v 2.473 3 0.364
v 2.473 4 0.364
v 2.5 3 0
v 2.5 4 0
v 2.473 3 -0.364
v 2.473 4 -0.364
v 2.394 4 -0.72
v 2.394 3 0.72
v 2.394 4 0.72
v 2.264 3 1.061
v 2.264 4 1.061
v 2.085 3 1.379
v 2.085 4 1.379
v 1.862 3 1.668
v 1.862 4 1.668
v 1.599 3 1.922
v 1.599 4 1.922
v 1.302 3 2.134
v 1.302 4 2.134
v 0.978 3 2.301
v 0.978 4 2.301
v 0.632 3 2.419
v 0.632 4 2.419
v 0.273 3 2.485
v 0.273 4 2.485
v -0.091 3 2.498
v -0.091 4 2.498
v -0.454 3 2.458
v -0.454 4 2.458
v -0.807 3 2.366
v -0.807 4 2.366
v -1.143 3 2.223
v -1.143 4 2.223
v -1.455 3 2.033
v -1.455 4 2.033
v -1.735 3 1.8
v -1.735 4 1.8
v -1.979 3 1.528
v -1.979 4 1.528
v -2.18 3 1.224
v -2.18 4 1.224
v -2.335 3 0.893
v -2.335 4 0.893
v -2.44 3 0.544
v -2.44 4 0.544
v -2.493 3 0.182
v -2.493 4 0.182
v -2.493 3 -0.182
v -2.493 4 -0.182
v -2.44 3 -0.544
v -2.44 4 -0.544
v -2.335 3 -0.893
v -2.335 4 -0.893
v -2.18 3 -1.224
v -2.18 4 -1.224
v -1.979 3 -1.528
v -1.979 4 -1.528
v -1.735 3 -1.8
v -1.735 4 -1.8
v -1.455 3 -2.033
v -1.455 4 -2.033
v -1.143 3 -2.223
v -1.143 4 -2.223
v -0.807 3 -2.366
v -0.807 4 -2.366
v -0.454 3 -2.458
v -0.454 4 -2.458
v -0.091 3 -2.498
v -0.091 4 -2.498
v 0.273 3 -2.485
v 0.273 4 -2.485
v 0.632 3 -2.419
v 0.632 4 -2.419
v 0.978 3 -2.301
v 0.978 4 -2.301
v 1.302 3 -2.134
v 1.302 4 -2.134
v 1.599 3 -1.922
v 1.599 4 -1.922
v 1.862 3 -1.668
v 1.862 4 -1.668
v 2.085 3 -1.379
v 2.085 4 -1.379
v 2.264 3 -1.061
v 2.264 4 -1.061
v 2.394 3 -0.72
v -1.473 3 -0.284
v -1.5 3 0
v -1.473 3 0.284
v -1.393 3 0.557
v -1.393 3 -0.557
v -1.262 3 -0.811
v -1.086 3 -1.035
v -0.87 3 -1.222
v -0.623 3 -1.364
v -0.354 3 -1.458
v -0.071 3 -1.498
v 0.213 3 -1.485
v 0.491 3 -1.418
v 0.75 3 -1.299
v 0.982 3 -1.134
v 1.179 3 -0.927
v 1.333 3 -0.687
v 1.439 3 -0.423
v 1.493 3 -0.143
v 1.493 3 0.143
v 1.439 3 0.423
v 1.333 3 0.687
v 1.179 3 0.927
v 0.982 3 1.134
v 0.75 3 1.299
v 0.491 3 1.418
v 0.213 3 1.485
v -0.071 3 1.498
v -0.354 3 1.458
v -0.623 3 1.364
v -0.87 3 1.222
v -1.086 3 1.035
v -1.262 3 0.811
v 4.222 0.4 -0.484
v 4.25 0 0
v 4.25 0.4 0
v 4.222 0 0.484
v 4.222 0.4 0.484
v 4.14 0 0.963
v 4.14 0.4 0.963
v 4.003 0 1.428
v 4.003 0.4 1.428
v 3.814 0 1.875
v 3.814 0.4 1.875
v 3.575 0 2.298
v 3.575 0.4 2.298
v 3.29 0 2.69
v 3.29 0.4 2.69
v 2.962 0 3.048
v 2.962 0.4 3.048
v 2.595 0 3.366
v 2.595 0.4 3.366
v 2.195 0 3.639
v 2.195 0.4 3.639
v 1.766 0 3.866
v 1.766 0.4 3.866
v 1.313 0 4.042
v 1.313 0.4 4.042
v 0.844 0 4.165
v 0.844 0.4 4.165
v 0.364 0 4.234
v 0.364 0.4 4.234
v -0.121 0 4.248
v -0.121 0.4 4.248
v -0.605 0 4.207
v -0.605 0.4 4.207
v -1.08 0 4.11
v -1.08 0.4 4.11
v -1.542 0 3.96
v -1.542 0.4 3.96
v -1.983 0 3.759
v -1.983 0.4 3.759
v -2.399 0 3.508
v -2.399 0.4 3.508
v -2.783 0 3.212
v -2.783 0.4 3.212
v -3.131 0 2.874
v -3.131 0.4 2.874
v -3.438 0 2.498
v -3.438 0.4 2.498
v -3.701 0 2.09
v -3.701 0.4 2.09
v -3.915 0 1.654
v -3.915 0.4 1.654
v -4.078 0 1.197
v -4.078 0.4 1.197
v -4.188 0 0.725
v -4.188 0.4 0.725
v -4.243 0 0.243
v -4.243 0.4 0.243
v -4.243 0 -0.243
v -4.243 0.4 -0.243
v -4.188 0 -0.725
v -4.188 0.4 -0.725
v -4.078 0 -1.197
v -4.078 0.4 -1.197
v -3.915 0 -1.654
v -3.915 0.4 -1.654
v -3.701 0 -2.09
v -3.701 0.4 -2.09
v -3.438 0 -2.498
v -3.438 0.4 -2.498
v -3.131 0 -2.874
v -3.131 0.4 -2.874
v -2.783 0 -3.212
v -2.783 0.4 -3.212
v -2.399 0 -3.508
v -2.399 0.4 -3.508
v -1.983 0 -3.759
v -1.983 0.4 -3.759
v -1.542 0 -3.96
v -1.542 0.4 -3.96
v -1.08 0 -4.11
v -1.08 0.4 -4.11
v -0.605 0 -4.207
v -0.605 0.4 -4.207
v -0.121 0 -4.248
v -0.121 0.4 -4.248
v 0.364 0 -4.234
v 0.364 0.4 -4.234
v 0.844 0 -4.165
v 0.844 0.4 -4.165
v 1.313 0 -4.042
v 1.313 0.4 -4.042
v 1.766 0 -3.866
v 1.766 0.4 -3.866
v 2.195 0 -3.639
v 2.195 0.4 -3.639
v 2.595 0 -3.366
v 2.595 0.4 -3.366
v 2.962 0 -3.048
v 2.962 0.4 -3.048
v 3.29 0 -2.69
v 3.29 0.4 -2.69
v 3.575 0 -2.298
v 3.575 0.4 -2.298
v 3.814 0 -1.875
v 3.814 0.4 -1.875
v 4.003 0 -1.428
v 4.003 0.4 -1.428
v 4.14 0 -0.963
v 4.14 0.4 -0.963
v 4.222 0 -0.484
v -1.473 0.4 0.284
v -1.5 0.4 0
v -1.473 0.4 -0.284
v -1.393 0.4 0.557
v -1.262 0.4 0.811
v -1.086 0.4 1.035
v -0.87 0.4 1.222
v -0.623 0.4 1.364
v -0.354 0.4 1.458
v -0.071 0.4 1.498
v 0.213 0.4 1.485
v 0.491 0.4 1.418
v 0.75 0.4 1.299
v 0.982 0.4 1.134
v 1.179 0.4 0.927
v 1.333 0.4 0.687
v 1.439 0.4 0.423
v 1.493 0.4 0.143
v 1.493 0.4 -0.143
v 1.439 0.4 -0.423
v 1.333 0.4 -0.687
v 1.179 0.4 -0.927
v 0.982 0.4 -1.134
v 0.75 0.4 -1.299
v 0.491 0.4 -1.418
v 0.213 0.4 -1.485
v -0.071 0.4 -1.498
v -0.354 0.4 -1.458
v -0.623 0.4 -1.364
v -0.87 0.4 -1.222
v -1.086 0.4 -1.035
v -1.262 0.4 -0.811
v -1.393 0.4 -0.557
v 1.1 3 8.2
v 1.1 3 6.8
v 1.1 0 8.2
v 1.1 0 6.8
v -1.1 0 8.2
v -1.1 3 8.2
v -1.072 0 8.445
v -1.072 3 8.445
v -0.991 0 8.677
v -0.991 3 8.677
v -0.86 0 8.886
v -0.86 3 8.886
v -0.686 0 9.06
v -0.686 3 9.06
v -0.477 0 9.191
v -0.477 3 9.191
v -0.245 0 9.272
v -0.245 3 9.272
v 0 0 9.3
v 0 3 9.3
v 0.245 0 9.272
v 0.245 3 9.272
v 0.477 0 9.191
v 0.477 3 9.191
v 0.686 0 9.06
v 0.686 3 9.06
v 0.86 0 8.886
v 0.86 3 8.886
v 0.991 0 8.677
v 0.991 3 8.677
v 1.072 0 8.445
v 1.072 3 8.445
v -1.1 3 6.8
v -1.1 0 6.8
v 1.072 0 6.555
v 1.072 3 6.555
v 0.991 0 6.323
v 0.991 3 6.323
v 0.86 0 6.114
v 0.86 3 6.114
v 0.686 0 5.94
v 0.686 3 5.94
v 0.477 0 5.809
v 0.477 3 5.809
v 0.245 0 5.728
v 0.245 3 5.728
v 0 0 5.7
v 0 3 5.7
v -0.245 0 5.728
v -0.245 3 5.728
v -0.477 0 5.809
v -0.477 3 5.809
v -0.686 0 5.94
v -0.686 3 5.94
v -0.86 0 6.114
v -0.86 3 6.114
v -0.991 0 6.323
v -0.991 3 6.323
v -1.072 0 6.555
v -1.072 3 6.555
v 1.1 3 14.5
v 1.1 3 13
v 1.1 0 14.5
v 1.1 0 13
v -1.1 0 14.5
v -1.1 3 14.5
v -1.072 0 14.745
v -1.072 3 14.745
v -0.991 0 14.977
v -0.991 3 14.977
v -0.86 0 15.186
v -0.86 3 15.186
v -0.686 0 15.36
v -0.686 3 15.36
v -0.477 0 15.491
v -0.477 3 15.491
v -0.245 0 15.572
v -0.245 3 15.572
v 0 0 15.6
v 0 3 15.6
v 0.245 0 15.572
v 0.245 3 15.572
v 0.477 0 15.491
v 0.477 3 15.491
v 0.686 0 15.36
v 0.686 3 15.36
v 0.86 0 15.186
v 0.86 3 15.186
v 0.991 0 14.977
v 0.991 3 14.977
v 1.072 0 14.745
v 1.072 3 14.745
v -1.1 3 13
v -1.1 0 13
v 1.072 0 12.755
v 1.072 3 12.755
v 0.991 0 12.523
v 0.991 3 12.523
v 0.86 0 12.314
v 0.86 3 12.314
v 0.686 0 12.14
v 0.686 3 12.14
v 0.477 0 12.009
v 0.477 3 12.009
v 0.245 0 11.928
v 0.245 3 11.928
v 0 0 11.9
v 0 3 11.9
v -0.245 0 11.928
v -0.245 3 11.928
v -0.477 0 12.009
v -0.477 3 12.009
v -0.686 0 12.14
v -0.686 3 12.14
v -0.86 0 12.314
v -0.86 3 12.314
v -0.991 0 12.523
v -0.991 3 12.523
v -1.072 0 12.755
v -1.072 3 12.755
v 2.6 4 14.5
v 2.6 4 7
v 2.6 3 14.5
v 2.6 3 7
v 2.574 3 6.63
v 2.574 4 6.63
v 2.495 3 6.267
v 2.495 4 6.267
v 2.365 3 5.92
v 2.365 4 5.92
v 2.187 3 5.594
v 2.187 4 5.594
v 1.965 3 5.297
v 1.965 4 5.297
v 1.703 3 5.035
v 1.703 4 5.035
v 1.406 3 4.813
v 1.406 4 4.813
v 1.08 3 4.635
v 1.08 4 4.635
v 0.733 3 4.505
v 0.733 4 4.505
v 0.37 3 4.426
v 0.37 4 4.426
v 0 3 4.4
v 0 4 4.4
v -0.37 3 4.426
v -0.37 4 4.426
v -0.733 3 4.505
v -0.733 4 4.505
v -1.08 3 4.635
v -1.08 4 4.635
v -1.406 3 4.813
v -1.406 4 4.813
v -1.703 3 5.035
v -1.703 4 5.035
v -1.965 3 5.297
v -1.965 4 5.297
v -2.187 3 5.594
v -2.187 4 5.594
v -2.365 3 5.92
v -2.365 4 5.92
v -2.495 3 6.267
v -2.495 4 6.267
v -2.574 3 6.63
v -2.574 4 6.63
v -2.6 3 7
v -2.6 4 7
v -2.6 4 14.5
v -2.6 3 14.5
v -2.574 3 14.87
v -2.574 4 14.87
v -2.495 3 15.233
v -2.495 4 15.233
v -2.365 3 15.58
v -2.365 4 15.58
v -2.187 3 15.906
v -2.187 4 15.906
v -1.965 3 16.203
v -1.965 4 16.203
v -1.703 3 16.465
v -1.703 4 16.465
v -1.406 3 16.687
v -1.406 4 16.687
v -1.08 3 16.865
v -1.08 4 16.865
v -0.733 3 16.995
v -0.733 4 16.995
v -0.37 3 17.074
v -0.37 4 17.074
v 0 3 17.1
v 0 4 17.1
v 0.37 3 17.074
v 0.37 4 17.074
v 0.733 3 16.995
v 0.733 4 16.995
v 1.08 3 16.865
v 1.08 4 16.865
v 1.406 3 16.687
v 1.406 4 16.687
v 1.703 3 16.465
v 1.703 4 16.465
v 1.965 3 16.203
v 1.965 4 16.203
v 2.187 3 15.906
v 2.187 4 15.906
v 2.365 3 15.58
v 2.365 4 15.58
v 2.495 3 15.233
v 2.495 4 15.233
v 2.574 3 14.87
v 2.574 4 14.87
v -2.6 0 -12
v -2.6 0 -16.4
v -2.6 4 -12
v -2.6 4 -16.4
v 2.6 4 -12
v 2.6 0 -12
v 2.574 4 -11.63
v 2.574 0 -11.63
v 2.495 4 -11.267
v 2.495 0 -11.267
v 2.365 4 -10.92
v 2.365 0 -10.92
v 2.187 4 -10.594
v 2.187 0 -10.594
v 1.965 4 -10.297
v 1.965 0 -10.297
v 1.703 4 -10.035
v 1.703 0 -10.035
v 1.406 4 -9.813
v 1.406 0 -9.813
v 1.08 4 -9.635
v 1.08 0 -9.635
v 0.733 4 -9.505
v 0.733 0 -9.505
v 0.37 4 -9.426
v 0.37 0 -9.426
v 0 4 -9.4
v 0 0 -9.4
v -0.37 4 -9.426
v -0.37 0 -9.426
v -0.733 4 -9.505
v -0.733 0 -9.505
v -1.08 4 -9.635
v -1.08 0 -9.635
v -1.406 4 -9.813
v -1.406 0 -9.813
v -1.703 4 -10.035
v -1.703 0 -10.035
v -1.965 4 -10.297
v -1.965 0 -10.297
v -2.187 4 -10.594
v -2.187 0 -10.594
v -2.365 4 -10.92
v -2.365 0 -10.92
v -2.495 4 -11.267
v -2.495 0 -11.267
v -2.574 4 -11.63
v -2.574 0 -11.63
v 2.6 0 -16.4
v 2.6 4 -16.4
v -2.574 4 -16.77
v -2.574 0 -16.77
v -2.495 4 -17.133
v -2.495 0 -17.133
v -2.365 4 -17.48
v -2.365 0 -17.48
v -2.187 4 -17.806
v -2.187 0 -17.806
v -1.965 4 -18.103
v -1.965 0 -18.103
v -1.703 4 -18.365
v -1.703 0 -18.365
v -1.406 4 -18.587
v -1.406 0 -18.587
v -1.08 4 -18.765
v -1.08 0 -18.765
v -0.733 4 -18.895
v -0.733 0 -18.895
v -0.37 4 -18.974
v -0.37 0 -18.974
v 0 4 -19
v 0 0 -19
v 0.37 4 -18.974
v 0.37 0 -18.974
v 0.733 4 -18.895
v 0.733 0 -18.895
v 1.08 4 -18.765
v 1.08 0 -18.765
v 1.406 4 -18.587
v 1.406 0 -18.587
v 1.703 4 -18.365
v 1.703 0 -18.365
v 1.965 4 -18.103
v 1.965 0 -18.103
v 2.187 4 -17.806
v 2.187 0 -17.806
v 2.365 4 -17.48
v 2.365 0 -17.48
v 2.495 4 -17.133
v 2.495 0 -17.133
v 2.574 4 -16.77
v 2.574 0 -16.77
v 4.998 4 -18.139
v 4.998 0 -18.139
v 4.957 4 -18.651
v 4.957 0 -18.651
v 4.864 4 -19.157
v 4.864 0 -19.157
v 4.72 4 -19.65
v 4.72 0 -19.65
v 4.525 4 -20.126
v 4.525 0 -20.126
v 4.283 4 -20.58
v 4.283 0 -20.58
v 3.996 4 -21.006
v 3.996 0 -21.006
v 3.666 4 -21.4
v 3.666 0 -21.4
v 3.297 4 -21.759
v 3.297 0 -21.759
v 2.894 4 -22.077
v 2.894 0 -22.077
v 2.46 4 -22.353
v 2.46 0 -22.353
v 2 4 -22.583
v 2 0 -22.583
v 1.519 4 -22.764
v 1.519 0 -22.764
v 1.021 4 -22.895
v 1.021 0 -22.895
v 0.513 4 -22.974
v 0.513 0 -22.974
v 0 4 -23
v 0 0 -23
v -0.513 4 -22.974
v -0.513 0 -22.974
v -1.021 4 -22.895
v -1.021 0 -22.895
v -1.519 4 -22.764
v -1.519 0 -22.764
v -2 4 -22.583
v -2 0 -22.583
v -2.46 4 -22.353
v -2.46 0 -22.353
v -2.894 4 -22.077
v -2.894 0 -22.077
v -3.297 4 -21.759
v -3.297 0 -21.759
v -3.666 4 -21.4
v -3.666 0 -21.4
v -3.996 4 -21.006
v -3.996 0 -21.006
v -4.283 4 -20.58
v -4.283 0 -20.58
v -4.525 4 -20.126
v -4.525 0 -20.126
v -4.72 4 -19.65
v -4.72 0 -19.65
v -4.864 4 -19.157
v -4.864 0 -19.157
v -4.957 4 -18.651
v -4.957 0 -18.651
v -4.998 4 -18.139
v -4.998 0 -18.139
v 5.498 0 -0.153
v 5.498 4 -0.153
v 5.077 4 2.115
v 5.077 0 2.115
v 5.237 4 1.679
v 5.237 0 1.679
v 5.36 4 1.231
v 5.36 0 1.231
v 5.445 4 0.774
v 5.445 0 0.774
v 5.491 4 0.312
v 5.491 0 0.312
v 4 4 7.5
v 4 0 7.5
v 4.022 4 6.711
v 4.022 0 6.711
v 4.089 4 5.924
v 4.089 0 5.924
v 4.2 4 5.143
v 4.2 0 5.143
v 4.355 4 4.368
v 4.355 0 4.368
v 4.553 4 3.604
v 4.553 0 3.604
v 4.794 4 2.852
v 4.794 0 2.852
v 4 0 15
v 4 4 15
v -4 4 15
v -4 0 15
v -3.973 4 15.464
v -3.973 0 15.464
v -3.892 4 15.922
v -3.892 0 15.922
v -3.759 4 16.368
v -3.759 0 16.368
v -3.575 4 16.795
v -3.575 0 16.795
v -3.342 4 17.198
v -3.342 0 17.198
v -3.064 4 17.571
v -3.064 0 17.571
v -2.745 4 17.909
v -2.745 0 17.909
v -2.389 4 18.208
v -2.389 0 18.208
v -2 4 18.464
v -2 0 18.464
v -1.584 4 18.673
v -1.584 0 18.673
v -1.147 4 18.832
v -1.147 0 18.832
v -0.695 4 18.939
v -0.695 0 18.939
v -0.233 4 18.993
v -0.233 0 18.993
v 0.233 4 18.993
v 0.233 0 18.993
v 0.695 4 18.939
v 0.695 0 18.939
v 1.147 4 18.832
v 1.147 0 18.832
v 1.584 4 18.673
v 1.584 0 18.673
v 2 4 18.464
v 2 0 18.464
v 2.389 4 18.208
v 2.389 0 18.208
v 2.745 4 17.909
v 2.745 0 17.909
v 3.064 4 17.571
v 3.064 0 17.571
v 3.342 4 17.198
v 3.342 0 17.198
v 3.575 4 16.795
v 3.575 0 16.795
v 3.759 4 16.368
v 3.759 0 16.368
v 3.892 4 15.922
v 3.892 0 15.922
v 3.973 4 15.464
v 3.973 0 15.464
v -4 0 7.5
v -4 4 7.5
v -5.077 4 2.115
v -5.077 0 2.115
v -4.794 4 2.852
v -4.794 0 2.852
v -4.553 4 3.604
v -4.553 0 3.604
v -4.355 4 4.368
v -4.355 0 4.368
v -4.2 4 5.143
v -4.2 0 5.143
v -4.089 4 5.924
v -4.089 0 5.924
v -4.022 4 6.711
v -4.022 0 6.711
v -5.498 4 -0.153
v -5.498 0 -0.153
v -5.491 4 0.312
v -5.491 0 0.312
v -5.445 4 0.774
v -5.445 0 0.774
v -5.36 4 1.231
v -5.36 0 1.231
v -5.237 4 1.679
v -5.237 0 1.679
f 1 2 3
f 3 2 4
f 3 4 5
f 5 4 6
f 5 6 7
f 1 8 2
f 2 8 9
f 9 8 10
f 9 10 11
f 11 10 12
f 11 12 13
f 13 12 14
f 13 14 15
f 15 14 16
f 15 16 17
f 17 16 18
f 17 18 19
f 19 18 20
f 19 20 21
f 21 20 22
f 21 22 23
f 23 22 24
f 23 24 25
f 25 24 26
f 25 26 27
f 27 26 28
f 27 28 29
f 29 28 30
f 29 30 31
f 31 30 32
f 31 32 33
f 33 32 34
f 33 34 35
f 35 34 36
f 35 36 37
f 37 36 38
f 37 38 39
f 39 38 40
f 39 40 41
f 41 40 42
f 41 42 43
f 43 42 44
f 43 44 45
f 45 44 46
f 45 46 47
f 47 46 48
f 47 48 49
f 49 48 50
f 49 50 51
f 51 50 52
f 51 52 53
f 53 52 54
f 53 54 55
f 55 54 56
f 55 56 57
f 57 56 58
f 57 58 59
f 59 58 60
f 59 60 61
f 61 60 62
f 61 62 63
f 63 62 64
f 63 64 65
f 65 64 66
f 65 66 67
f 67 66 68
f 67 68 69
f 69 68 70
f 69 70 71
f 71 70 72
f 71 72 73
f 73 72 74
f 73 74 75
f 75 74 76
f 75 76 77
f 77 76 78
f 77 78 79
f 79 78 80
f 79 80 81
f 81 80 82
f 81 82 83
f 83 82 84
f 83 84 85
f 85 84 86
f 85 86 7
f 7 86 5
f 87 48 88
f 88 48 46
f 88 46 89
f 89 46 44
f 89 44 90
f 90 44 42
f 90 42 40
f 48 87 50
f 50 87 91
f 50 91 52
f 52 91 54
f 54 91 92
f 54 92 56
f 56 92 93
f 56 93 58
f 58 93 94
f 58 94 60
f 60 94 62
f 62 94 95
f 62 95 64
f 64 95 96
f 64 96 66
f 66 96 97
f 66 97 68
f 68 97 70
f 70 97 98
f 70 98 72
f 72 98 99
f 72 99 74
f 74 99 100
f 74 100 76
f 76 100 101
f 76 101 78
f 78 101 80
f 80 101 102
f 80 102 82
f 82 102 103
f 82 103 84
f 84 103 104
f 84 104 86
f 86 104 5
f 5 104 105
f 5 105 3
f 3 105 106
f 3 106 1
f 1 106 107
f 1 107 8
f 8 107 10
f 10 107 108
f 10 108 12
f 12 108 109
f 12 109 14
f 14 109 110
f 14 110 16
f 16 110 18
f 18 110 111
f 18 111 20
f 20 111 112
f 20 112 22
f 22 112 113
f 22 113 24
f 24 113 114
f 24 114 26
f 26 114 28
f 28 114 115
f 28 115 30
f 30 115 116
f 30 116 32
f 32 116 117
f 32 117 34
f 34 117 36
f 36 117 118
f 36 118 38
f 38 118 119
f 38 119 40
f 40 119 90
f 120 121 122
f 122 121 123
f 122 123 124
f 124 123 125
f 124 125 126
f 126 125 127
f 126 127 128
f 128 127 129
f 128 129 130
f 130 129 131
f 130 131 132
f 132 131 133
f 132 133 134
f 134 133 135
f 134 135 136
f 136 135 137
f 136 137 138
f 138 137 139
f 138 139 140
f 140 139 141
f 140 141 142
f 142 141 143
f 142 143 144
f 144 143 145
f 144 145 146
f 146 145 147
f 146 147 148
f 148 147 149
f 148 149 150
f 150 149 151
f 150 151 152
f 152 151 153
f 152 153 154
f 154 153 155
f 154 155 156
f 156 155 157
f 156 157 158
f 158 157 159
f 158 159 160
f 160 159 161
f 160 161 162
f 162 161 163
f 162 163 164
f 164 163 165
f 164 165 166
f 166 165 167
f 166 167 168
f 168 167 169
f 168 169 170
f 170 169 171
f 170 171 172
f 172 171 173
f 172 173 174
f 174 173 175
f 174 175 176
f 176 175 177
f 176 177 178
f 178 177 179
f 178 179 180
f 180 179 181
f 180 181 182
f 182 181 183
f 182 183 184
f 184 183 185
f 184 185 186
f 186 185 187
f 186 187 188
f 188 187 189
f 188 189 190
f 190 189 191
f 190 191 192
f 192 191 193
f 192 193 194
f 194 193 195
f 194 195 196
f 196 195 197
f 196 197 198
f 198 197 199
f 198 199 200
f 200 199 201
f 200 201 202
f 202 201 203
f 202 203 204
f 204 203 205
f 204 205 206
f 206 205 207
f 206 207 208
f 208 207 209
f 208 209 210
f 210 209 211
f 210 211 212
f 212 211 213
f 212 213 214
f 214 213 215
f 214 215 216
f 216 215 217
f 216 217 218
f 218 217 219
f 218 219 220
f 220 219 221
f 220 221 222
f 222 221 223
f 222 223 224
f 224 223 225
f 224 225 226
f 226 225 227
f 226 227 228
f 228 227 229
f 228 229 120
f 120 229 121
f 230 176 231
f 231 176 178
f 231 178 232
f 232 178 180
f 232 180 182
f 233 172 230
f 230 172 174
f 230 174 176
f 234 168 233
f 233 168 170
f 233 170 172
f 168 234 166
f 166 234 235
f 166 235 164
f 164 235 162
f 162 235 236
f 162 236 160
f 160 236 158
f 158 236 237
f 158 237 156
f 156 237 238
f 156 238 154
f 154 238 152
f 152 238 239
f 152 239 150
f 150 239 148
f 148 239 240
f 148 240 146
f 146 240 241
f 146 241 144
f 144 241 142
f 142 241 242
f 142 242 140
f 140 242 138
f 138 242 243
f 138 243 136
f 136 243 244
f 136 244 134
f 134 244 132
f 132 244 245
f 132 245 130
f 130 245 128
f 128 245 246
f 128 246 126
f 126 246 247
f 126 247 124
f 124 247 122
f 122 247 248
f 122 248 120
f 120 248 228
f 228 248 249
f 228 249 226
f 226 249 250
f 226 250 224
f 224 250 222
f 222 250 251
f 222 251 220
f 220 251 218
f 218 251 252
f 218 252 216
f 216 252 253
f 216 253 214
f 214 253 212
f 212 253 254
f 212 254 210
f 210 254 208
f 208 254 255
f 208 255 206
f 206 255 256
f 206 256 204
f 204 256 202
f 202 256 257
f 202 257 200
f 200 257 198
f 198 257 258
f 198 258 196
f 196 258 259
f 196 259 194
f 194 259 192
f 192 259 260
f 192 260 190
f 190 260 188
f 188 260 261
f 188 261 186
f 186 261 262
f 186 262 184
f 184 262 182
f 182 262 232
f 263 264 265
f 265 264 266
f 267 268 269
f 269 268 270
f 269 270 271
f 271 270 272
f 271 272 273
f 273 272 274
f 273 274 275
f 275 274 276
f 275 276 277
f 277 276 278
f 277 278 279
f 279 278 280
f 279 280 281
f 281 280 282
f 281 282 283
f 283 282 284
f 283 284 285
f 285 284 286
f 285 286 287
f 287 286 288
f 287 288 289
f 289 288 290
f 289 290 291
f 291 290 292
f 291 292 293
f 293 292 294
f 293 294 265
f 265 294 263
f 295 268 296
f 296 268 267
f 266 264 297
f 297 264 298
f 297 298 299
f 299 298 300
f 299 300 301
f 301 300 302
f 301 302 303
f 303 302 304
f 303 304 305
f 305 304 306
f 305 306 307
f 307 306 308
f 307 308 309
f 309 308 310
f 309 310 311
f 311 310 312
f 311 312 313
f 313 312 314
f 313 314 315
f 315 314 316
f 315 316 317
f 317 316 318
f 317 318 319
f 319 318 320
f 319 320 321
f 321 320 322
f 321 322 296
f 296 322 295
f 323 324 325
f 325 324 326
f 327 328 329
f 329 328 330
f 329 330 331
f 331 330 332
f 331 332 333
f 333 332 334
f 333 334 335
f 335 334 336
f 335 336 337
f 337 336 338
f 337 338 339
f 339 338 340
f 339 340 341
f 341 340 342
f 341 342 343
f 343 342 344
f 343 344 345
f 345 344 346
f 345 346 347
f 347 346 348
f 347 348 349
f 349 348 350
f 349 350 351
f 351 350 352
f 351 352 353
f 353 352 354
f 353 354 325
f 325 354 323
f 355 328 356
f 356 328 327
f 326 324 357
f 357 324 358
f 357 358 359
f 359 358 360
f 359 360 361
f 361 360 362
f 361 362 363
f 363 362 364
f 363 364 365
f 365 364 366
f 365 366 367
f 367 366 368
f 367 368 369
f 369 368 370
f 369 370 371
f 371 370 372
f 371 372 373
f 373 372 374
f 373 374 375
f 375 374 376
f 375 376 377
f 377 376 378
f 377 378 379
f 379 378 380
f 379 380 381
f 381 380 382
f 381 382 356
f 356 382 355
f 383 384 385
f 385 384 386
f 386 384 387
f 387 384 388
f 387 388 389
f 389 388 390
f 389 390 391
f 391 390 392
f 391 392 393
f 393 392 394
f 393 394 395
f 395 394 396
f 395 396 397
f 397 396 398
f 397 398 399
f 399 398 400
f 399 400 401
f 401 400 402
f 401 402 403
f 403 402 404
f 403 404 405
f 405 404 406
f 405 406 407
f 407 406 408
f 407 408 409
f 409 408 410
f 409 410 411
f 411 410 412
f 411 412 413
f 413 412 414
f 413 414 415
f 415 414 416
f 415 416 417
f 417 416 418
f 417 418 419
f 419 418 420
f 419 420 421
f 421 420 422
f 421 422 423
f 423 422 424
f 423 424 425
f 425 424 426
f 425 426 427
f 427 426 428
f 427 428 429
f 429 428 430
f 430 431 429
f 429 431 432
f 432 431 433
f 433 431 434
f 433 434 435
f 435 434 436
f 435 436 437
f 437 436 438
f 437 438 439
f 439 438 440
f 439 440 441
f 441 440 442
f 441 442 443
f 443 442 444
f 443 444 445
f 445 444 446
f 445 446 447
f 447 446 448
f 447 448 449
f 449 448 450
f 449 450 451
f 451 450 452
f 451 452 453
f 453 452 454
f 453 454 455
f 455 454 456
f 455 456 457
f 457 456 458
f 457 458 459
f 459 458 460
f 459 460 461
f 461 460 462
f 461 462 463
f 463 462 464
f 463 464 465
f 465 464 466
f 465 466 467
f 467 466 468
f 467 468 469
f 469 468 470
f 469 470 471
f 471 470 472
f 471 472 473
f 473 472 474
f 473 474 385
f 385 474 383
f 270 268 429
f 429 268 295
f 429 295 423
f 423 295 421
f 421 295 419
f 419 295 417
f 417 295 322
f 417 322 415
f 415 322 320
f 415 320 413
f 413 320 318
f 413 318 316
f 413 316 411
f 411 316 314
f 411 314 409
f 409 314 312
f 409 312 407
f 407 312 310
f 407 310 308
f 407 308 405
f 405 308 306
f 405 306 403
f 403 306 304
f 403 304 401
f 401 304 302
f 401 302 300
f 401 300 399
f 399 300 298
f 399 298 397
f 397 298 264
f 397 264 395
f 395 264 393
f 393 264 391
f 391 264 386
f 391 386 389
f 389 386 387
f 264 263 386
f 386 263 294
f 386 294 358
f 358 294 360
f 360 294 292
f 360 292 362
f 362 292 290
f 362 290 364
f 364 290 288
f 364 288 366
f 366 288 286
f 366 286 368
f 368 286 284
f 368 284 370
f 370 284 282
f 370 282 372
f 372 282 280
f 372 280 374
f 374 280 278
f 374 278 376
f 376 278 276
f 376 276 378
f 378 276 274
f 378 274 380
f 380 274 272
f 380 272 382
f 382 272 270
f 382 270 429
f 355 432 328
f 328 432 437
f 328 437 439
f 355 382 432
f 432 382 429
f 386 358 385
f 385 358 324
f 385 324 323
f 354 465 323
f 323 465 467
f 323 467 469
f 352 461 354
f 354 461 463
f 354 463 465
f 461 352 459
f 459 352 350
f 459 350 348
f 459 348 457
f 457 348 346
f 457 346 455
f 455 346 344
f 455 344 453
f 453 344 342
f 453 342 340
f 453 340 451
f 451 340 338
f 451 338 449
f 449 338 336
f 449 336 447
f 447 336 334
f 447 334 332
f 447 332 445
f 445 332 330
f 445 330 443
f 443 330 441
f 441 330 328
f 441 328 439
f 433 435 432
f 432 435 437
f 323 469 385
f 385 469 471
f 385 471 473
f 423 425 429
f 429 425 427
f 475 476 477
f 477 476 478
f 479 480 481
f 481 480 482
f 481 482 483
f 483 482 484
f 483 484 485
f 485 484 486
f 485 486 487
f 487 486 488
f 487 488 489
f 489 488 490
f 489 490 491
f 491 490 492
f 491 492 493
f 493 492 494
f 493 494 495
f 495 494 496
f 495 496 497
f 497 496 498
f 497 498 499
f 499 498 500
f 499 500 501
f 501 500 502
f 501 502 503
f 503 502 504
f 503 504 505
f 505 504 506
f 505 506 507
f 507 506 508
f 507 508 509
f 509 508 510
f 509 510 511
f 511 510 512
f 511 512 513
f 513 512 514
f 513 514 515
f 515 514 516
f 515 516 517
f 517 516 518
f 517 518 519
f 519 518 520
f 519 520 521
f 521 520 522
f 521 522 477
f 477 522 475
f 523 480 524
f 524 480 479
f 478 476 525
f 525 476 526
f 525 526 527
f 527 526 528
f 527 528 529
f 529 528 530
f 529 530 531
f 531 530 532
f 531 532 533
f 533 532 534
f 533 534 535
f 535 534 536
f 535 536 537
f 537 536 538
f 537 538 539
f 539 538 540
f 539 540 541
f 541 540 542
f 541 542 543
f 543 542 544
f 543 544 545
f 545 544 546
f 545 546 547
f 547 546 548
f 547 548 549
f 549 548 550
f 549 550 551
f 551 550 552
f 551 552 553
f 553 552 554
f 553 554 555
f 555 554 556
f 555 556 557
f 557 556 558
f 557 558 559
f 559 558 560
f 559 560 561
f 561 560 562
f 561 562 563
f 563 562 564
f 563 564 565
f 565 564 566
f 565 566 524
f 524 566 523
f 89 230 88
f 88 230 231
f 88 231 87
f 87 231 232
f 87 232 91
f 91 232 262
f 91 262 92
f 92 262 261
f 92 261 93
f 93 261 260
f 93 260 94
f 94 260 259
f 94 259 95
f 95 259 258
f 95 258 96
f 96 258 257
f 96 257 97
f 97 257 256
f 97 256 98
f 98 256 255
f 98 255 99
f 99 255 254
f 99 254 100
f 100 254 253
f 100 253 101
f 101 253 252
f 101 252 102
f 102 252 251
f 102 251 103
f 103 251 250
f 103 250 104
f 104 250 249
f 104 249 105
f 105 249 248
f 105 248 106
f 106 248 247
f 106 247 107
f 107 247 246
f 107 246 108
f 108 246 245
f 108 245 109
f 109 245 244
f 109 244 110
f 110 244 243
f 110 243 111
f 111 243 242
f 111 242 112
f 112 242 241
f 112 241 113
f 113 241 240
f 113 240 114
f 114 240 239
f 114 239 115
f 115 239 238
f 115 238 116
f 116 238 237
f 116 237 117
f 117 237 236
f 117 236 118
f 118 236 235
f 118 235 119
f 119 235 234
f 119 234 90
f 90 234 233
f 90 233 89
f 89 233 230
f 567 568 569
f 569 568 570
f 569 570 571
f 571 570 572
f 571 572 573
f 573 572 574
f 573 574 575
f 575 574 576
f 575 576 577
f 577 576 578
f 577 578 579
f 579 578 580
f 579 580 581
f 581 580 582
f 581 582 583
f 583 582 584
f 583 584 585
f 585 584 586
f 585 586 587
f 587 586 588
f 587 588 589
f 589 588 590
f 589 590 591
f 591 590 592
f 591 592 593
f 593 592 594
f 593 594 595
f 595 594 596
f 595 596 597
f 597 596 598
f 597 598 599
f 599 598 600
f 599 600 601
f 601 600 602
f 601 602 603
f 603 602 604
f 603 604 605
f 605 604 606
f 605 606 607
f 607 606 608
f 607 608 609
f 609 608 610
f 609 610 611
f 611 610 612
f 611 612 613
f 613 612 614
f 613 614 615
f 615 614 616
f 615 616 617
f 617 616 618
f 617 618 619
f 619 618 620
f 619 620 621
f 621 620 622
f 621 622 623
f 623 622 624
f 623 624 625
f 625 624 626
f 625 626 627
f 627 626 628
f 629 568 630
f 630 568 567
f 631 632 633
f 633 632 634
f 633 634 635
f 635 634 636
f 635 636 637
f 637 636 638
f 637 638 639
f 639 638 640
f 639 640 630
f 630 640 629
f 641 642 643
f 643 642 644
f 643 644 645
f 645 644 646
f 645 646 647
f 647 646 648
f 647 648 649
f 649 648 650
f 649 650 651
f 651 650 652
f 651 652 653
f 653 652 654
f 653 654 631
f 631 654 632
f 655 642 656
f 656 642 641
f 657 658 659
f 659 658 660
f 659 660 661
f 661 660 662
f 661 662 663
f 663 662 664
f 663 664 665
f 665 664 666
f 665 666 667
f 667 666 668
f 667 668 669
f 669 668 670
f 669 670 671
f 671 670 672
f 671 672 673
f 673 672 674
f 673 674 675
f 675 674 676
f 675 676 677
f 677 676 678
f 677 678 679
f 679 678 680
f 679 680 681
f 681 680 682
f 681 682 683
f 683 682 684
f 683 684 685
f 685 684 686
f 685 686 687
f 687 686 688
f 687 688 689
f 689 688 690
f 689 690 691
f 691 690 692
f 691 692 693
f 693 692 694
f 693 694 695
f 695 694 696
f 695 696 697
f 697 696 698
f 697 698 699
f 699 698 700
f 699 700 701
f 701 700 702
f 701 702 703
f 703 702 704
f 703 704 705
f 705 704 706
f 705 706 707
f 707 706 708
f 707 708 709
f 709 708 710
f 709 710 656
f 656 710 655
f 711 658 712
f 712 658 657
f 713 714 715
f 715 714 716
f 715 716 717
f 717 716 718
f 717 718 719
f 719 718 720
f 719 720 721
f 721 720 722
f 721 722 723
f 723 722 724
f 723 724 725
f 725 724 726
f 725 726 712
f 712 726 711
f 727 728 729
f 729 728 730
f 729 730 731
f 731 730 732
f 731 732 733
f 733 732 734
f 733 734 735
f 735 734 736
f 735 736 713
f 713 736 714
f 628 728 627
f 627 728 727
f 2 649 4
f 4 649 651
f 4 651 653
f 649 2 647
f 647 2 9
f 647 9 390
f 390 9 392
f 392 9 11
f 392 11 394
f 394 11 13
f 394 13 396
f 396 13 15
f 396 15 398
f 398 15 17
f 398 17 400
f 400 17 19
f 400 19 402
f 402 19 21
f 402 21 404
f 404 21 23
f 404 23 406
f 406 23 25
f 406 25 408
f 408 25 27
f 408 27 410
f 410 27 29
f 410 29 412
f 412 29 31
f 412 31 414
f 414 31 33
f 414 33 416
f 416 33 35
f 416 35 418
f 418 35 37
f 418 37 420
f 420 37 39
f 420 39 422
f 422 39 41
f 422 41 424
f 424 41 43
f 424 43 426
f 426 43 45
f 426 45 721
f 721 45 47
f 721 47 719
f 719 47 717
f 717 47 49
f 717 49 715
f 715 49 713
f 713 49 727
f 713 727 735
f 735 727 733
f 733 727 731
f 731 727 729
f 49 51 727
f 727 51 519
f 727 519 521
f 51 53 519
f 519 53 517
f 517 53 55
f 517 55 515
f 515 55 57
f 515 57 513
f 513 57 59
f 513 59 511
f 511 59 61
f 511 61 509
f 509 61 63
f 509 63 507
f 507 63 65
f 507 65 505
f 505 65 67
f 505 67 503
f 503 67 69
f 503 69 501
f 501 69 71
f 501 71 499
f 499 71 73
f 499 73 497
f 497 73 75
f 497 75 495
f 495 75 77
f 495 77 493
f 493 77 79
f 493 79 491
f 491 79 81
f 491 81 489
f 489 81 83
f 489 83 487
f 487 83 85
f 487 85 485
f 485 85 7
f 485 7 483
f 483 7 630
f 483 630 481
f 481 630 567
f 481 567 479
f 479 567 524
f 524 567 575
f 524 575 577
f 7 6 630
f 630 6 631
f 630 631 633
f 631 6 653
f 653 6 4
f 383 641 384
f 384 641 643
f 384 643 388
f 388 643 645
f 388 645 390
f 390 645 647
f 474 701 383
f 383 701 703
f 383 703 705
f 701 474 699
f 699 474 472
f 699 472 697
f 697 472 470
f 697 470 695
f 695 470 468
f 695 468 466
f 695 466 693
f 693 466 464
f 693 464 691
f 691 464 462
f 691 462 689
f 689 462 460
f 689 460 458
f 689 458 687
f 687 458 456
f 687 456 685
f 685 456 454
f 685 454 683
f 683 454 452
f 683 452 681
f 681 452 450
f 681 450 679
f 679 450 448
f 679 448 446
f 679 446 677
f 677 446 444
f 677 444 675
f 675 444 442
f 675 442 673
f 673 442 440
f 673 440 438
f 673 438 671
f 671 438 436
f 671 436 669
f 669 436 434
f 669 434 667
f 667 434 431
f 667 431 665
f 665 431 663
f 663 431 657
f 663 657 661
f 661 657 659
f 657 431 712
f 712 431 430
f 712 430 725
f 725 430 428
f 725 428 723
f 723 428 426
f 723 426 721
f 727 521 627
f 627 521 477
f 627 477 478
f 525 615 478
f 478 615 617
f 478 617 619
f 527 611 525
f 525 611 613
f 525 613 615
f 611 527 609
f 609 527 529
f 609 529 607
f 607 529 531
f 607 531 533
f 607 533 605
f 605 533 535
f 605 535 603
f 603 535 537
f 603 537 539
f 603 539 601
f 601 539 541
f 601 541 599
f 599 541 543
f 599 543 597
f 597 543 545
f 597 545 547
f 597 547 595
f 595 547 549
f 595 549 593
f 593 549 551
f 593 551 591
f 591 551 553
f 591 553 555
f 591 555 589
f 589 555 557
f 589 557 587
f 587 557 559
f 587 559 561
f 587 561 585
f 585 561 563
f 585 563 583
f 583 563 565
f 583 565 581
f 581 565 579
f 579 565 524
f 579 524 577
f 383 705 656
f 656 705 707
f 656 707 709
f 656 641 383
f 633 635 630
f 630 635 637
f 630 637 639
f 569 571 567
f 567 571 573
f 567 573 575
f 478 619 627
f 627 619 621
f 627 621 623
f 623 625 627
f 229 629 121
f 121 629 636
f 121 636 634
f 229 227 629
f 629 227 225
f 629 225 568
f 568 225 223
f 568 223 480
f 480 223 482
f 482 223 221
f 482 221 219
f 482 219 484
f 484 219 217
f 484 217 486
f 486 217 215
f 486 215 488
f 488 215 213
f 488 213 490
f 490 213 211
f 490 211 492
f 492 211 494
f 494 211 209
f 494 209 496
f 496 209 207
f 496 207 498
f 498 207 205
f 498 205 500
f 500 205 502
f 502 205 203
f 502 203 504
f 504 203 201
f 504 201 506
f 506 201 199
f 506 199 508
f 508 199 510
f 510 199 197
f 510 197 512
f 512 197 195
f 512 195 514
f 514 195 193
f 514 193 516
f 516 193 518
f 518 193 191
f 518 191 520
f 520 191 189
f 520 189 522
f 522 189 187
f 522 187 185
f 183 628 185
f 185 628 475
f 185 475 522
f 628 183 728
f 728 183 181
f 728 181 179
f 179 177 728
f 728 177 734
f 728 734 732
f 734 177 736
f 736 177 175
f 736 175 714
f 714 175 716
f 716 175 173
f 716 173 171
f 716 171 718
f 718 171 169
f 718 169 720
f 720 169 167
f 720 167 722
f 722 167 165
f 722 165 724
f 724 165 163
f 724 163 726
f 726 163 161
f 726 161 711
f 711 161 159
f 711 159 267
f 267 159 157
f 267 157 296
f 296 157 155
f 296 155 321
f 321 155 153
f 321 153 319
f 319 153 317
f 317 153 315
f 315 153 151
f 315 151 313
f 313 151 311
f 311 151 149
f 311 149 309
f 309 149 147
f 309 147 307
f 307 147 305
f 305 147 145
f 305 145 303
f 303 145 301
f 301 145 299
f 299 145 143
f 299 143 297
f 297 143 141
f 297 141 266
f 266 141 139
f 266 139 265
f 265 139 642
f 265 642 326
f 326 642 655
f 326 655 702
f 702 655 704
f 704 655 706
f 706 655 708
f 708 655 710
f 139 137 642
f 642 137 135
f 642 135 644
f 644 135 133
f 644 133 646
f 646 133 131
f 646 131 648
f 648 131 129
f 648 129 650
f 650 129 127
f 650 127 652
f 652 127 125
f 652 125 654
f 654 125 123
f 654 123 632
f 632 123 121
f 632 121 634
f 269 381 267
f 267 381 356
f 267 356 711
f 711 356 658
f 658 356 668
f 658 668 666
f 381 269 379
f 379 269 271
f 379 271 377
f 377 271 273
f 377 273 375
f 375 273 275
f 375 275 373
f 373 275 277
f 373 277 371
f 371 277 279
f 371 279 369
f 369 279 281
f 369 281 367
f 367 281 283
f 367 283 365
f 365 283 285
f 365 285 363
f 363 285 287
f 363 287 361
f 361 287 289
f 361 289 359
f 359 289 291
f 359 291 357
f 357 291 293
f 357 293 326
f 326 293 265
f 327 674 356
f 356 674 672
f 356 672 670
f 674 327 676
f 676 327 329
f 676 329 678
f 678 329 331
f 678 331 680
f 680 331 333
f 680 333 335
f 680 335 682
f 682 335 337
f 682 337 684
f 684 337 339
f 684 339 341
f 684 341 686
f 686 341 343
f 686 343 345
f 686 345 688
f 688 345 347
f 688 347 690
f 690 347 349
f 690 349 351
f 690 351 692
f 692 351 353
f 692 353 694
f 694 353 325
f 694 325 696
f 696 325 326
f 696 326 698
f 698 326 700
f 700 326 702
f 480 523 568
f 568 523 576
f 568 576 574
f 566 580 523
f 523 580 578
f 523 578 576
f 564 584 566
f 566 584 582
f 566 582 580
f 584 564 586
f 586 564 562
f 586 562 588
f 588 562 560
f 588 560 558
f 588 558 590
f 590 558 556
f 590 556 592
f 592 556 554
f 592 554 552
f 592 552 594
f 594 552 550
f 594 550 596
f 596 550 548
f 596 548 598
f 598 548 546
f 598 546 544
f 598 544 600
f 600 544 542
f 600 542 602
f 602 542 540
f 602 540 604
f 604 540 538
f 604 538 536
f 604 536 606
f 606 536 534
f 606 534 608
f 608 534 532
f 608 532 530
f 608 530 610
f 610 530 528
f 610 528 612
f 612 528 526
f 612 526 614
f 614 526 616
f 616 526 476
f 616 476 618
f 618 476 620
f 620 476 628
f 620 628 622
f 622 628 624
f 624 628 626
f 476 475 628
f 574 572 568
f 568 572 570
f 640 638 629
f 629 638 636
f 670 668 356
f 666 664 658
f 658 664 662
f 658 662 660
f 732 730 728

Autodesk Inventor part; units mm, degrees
ref_plane "YZ Plane" through (0, 0, 0) normal (1, 0, 0) x (0, 1, 0)
ref_plane "XZ Plane" through (0, 0, 0) normal (0, 1, 0) x (-1, 0, 0)
ref_plane "XY Plane" through (0, 0, 0) normal (0, 0, 1) x (1, 0, 0)
sketch "Sketch1" plane through (0, 0, 0) normal (0, 1, 0) x (-1, 0, 0)
  circle A0 centre (0, 0) radius 1.5
  circle A1 centre (0, 0) radius 5.5
  circle A2 centre (0, -18) radius 5
  line L0 (5.4979, -0.1528) -> (4.9981, -18.1389)
  line L1 (-4.9981, -18.1389) -> (-5.4979, -0.1528)
  line L2 (0, 0) -> (0, 15) construction
  line L3 (-4, 0) -> (-4, 15)
  line L4 (4, 15) -> (4, 0)
  arc A3 (-4, 0) -> (4, 0) centre (0, 0) ccw
  arc A4 (4, 15) -> (-4, 15) centre (0, 15) ccw
  arc A5 (4, 7.5) -> (5.0769, 2.1154) centre (18, 7.5) ccw
  arc A6 (-5.0769, 2.1154) -> (-4, 7.5) centre (-18, 7.5) ccw
  point P0 (0, 7.5)
  point P1 (-4, 3.7749)
  point P2 (4, 3.7749)
  point P3 (-4, 7.5)
  dimension "d0" = 3
  dimension "d1" = 11
  dimension "d3" = 18
  dimension "d43" = 15
  dimension "d44" = 4
  dimension "d74" = 10
extrude "Extrusion1" add sketch "Sketch1" along normal blind 4
sketch "Sketch2" plane through (0, 4, 0) normal (0, 1, 0) x (1, 0, 0)
  arc A0 (4.9981, 18.1389) -> (-4.9981, 18.1389) centre (0, 18) ccw projected
  circle A1 centre (0, 0) radius 1.5 projected
  line L0 (0, 16.4) -> (0, 12) construction
  line L1 (-2.6, 16.4) -> (-2.6, 12)
  line L2 (2.6, 12) -> (2.6, 16.4)
  arc A2 (2.6, 16.4) -> (-2.6, 16.4) centre (0, 16.4) ccw
  arc A3 (-2.6, 12) -> (2.6, 12) centre (0, 12) ccw
  line L3 (-4, -7.5) -> (-4, -15) projected
  arc A4 (-4, -15) -> (4, -15) centre (0, -15) ccw projected
  line L4 (4, -15) -> (4, -7.5) projected
  line L5 (-4.9981, 18.1389) -> (-5.4979, 0.1528) projected
  arc A5 (-5.4979, 0.1528) -> (-5.0769, -2.1154) centre (0, 0) ccw projected
  arc A6 (5.0769, -2.1154) -> (5.4979, 0.1528) centre (0, 0) ccw projected
  line L6 (5.4979, 0.1528) -> (4.9981, 18.1389) projected
  arc A7 (-4, -7.5) -> (-5.0769, -2.1154) centre (-18, -7.5) ccw projected
  arc A8 (5.0769, -2.1154) -> (4, -7.5) centre (18, -7.5) ccw projected
  point P0 (0, 14.2)
  dimension "d6" = 4.4
  dimension "d7" = 5.2
  dimension "d9" = 12
extrude "Extrusion2" cut sketch "Sketch2" against normal through all contours A2 L2 A3 L1
sketch "Sketch8" plane through (0, 4, 0) normal (0, 1, 0) x (1, 0, 0)
  line L0 (0, 31.4) -> (0, -27.4) projected
  line L1 (0, -14.5) -> (0, -7) construction
  line L2 (2.6, -14.5) -> (2.6, -7)
  line L3 (-2.6, -7) -> (-2.6, -14.5)
  arc A0 (-2.6, -14.5) -> (2.6, -14.5) centre (0, -14.5) ccw
  arc A1 (2.6, -7) -> (-2.6, -7) centre (0, -7) ccw
  point P0 (0, 0)
  point P1 (0, -10.75)
  dimension "d45" = 5.2
  dimension "d47" = 7
  dimension "d48" = 14.5
extrude "Extrusion8" cut sketch "Sketch8" against normal blind 1
sketch "Sketch10" plane through (0, 0, 0) normal (0, -1, 0) x (1, 0, 0)
  line L0 (0, 6.8) -> (0, 8.2) construction
  line L1 (1.1, 6.8) -> (1.1, 8.2)
  line L2 (-1.1, 8.2) -> (-1.1, 6.8)
  arc A0 (-1.1, 6.8) -> (1.1, 6.8) centre (0, 6.8) ccw
  arc A1 (1.1, 8.2) -> (-1.1, 8.2) centre (0, 8.2) ccw
  line L3 (0, 13) -> (0, 14.5) construction
  line L4 (1.1, 13) -> (1.1, 14.5)
  line L5 (-1.1, 14.5) -> (-1.1, 13)
  arc A2 (-1.1, 13) -> (1.1, 13) centre (0, 13) ccw
  arc A3 (1.1, 14.5) -> (-1.1, 14.5) centre (0, 14.5) ccw
  line L6 (0, -7.3) -> (0, -7.7) construction
  line L7 (1.1, -7.3) -> (1.1, -7.7)
  line L8 (-1.1, -7.7) -> (-1.1, -7.3)
  arc A4 (1.1, -7.3) -> (-1.1, -7.3) centre (0, -7.3) ccw
  arc A5 (-1.1, -7.7) -> (1.1, -7.7) centre (0, -7.7) ccw
  point P0 (0, 0)
  point P1 (0, 7.5)
  point P2 (0, 13.75)
  point P3 (0, -7.5)
  dimension "d60" = 2.2
  dimension "d61" = 6.8
  dimension "d62" = 1.4
  dimension "d63" = 1.5
  dimension "d64" = 2.2
  dimension "d65" = 13
  dimension "d78" = 0.2
  dimension "d79" = 7.5
extrude "Extrusion9" cut sketch "Sketch10" against normal through all contours A0 L2 A1 L1 | A2 L5 A3 L4
sketch "Sketch11" plane through (0, 0, 0) normal (0, -1, 0) x (1, 0, 0)
  circle A0 centre (0, 0) radius 4.25
  dimension "d73" = 8.5
extrude "Extrusion10" cut sketch "Sketch11" against normal blind 0.4
sketch "Sketch12" plane through (0, 4, 0) normal (0, 1, 0) x (1, 0, 0)
  circle A0 centre (0, 0) radius 2.5
  dimension "d75" = 5
extrude "Extrusion11" cut sketch "Sketch12" against normal blind 1
properties part number "Servo steering actuator v2"
